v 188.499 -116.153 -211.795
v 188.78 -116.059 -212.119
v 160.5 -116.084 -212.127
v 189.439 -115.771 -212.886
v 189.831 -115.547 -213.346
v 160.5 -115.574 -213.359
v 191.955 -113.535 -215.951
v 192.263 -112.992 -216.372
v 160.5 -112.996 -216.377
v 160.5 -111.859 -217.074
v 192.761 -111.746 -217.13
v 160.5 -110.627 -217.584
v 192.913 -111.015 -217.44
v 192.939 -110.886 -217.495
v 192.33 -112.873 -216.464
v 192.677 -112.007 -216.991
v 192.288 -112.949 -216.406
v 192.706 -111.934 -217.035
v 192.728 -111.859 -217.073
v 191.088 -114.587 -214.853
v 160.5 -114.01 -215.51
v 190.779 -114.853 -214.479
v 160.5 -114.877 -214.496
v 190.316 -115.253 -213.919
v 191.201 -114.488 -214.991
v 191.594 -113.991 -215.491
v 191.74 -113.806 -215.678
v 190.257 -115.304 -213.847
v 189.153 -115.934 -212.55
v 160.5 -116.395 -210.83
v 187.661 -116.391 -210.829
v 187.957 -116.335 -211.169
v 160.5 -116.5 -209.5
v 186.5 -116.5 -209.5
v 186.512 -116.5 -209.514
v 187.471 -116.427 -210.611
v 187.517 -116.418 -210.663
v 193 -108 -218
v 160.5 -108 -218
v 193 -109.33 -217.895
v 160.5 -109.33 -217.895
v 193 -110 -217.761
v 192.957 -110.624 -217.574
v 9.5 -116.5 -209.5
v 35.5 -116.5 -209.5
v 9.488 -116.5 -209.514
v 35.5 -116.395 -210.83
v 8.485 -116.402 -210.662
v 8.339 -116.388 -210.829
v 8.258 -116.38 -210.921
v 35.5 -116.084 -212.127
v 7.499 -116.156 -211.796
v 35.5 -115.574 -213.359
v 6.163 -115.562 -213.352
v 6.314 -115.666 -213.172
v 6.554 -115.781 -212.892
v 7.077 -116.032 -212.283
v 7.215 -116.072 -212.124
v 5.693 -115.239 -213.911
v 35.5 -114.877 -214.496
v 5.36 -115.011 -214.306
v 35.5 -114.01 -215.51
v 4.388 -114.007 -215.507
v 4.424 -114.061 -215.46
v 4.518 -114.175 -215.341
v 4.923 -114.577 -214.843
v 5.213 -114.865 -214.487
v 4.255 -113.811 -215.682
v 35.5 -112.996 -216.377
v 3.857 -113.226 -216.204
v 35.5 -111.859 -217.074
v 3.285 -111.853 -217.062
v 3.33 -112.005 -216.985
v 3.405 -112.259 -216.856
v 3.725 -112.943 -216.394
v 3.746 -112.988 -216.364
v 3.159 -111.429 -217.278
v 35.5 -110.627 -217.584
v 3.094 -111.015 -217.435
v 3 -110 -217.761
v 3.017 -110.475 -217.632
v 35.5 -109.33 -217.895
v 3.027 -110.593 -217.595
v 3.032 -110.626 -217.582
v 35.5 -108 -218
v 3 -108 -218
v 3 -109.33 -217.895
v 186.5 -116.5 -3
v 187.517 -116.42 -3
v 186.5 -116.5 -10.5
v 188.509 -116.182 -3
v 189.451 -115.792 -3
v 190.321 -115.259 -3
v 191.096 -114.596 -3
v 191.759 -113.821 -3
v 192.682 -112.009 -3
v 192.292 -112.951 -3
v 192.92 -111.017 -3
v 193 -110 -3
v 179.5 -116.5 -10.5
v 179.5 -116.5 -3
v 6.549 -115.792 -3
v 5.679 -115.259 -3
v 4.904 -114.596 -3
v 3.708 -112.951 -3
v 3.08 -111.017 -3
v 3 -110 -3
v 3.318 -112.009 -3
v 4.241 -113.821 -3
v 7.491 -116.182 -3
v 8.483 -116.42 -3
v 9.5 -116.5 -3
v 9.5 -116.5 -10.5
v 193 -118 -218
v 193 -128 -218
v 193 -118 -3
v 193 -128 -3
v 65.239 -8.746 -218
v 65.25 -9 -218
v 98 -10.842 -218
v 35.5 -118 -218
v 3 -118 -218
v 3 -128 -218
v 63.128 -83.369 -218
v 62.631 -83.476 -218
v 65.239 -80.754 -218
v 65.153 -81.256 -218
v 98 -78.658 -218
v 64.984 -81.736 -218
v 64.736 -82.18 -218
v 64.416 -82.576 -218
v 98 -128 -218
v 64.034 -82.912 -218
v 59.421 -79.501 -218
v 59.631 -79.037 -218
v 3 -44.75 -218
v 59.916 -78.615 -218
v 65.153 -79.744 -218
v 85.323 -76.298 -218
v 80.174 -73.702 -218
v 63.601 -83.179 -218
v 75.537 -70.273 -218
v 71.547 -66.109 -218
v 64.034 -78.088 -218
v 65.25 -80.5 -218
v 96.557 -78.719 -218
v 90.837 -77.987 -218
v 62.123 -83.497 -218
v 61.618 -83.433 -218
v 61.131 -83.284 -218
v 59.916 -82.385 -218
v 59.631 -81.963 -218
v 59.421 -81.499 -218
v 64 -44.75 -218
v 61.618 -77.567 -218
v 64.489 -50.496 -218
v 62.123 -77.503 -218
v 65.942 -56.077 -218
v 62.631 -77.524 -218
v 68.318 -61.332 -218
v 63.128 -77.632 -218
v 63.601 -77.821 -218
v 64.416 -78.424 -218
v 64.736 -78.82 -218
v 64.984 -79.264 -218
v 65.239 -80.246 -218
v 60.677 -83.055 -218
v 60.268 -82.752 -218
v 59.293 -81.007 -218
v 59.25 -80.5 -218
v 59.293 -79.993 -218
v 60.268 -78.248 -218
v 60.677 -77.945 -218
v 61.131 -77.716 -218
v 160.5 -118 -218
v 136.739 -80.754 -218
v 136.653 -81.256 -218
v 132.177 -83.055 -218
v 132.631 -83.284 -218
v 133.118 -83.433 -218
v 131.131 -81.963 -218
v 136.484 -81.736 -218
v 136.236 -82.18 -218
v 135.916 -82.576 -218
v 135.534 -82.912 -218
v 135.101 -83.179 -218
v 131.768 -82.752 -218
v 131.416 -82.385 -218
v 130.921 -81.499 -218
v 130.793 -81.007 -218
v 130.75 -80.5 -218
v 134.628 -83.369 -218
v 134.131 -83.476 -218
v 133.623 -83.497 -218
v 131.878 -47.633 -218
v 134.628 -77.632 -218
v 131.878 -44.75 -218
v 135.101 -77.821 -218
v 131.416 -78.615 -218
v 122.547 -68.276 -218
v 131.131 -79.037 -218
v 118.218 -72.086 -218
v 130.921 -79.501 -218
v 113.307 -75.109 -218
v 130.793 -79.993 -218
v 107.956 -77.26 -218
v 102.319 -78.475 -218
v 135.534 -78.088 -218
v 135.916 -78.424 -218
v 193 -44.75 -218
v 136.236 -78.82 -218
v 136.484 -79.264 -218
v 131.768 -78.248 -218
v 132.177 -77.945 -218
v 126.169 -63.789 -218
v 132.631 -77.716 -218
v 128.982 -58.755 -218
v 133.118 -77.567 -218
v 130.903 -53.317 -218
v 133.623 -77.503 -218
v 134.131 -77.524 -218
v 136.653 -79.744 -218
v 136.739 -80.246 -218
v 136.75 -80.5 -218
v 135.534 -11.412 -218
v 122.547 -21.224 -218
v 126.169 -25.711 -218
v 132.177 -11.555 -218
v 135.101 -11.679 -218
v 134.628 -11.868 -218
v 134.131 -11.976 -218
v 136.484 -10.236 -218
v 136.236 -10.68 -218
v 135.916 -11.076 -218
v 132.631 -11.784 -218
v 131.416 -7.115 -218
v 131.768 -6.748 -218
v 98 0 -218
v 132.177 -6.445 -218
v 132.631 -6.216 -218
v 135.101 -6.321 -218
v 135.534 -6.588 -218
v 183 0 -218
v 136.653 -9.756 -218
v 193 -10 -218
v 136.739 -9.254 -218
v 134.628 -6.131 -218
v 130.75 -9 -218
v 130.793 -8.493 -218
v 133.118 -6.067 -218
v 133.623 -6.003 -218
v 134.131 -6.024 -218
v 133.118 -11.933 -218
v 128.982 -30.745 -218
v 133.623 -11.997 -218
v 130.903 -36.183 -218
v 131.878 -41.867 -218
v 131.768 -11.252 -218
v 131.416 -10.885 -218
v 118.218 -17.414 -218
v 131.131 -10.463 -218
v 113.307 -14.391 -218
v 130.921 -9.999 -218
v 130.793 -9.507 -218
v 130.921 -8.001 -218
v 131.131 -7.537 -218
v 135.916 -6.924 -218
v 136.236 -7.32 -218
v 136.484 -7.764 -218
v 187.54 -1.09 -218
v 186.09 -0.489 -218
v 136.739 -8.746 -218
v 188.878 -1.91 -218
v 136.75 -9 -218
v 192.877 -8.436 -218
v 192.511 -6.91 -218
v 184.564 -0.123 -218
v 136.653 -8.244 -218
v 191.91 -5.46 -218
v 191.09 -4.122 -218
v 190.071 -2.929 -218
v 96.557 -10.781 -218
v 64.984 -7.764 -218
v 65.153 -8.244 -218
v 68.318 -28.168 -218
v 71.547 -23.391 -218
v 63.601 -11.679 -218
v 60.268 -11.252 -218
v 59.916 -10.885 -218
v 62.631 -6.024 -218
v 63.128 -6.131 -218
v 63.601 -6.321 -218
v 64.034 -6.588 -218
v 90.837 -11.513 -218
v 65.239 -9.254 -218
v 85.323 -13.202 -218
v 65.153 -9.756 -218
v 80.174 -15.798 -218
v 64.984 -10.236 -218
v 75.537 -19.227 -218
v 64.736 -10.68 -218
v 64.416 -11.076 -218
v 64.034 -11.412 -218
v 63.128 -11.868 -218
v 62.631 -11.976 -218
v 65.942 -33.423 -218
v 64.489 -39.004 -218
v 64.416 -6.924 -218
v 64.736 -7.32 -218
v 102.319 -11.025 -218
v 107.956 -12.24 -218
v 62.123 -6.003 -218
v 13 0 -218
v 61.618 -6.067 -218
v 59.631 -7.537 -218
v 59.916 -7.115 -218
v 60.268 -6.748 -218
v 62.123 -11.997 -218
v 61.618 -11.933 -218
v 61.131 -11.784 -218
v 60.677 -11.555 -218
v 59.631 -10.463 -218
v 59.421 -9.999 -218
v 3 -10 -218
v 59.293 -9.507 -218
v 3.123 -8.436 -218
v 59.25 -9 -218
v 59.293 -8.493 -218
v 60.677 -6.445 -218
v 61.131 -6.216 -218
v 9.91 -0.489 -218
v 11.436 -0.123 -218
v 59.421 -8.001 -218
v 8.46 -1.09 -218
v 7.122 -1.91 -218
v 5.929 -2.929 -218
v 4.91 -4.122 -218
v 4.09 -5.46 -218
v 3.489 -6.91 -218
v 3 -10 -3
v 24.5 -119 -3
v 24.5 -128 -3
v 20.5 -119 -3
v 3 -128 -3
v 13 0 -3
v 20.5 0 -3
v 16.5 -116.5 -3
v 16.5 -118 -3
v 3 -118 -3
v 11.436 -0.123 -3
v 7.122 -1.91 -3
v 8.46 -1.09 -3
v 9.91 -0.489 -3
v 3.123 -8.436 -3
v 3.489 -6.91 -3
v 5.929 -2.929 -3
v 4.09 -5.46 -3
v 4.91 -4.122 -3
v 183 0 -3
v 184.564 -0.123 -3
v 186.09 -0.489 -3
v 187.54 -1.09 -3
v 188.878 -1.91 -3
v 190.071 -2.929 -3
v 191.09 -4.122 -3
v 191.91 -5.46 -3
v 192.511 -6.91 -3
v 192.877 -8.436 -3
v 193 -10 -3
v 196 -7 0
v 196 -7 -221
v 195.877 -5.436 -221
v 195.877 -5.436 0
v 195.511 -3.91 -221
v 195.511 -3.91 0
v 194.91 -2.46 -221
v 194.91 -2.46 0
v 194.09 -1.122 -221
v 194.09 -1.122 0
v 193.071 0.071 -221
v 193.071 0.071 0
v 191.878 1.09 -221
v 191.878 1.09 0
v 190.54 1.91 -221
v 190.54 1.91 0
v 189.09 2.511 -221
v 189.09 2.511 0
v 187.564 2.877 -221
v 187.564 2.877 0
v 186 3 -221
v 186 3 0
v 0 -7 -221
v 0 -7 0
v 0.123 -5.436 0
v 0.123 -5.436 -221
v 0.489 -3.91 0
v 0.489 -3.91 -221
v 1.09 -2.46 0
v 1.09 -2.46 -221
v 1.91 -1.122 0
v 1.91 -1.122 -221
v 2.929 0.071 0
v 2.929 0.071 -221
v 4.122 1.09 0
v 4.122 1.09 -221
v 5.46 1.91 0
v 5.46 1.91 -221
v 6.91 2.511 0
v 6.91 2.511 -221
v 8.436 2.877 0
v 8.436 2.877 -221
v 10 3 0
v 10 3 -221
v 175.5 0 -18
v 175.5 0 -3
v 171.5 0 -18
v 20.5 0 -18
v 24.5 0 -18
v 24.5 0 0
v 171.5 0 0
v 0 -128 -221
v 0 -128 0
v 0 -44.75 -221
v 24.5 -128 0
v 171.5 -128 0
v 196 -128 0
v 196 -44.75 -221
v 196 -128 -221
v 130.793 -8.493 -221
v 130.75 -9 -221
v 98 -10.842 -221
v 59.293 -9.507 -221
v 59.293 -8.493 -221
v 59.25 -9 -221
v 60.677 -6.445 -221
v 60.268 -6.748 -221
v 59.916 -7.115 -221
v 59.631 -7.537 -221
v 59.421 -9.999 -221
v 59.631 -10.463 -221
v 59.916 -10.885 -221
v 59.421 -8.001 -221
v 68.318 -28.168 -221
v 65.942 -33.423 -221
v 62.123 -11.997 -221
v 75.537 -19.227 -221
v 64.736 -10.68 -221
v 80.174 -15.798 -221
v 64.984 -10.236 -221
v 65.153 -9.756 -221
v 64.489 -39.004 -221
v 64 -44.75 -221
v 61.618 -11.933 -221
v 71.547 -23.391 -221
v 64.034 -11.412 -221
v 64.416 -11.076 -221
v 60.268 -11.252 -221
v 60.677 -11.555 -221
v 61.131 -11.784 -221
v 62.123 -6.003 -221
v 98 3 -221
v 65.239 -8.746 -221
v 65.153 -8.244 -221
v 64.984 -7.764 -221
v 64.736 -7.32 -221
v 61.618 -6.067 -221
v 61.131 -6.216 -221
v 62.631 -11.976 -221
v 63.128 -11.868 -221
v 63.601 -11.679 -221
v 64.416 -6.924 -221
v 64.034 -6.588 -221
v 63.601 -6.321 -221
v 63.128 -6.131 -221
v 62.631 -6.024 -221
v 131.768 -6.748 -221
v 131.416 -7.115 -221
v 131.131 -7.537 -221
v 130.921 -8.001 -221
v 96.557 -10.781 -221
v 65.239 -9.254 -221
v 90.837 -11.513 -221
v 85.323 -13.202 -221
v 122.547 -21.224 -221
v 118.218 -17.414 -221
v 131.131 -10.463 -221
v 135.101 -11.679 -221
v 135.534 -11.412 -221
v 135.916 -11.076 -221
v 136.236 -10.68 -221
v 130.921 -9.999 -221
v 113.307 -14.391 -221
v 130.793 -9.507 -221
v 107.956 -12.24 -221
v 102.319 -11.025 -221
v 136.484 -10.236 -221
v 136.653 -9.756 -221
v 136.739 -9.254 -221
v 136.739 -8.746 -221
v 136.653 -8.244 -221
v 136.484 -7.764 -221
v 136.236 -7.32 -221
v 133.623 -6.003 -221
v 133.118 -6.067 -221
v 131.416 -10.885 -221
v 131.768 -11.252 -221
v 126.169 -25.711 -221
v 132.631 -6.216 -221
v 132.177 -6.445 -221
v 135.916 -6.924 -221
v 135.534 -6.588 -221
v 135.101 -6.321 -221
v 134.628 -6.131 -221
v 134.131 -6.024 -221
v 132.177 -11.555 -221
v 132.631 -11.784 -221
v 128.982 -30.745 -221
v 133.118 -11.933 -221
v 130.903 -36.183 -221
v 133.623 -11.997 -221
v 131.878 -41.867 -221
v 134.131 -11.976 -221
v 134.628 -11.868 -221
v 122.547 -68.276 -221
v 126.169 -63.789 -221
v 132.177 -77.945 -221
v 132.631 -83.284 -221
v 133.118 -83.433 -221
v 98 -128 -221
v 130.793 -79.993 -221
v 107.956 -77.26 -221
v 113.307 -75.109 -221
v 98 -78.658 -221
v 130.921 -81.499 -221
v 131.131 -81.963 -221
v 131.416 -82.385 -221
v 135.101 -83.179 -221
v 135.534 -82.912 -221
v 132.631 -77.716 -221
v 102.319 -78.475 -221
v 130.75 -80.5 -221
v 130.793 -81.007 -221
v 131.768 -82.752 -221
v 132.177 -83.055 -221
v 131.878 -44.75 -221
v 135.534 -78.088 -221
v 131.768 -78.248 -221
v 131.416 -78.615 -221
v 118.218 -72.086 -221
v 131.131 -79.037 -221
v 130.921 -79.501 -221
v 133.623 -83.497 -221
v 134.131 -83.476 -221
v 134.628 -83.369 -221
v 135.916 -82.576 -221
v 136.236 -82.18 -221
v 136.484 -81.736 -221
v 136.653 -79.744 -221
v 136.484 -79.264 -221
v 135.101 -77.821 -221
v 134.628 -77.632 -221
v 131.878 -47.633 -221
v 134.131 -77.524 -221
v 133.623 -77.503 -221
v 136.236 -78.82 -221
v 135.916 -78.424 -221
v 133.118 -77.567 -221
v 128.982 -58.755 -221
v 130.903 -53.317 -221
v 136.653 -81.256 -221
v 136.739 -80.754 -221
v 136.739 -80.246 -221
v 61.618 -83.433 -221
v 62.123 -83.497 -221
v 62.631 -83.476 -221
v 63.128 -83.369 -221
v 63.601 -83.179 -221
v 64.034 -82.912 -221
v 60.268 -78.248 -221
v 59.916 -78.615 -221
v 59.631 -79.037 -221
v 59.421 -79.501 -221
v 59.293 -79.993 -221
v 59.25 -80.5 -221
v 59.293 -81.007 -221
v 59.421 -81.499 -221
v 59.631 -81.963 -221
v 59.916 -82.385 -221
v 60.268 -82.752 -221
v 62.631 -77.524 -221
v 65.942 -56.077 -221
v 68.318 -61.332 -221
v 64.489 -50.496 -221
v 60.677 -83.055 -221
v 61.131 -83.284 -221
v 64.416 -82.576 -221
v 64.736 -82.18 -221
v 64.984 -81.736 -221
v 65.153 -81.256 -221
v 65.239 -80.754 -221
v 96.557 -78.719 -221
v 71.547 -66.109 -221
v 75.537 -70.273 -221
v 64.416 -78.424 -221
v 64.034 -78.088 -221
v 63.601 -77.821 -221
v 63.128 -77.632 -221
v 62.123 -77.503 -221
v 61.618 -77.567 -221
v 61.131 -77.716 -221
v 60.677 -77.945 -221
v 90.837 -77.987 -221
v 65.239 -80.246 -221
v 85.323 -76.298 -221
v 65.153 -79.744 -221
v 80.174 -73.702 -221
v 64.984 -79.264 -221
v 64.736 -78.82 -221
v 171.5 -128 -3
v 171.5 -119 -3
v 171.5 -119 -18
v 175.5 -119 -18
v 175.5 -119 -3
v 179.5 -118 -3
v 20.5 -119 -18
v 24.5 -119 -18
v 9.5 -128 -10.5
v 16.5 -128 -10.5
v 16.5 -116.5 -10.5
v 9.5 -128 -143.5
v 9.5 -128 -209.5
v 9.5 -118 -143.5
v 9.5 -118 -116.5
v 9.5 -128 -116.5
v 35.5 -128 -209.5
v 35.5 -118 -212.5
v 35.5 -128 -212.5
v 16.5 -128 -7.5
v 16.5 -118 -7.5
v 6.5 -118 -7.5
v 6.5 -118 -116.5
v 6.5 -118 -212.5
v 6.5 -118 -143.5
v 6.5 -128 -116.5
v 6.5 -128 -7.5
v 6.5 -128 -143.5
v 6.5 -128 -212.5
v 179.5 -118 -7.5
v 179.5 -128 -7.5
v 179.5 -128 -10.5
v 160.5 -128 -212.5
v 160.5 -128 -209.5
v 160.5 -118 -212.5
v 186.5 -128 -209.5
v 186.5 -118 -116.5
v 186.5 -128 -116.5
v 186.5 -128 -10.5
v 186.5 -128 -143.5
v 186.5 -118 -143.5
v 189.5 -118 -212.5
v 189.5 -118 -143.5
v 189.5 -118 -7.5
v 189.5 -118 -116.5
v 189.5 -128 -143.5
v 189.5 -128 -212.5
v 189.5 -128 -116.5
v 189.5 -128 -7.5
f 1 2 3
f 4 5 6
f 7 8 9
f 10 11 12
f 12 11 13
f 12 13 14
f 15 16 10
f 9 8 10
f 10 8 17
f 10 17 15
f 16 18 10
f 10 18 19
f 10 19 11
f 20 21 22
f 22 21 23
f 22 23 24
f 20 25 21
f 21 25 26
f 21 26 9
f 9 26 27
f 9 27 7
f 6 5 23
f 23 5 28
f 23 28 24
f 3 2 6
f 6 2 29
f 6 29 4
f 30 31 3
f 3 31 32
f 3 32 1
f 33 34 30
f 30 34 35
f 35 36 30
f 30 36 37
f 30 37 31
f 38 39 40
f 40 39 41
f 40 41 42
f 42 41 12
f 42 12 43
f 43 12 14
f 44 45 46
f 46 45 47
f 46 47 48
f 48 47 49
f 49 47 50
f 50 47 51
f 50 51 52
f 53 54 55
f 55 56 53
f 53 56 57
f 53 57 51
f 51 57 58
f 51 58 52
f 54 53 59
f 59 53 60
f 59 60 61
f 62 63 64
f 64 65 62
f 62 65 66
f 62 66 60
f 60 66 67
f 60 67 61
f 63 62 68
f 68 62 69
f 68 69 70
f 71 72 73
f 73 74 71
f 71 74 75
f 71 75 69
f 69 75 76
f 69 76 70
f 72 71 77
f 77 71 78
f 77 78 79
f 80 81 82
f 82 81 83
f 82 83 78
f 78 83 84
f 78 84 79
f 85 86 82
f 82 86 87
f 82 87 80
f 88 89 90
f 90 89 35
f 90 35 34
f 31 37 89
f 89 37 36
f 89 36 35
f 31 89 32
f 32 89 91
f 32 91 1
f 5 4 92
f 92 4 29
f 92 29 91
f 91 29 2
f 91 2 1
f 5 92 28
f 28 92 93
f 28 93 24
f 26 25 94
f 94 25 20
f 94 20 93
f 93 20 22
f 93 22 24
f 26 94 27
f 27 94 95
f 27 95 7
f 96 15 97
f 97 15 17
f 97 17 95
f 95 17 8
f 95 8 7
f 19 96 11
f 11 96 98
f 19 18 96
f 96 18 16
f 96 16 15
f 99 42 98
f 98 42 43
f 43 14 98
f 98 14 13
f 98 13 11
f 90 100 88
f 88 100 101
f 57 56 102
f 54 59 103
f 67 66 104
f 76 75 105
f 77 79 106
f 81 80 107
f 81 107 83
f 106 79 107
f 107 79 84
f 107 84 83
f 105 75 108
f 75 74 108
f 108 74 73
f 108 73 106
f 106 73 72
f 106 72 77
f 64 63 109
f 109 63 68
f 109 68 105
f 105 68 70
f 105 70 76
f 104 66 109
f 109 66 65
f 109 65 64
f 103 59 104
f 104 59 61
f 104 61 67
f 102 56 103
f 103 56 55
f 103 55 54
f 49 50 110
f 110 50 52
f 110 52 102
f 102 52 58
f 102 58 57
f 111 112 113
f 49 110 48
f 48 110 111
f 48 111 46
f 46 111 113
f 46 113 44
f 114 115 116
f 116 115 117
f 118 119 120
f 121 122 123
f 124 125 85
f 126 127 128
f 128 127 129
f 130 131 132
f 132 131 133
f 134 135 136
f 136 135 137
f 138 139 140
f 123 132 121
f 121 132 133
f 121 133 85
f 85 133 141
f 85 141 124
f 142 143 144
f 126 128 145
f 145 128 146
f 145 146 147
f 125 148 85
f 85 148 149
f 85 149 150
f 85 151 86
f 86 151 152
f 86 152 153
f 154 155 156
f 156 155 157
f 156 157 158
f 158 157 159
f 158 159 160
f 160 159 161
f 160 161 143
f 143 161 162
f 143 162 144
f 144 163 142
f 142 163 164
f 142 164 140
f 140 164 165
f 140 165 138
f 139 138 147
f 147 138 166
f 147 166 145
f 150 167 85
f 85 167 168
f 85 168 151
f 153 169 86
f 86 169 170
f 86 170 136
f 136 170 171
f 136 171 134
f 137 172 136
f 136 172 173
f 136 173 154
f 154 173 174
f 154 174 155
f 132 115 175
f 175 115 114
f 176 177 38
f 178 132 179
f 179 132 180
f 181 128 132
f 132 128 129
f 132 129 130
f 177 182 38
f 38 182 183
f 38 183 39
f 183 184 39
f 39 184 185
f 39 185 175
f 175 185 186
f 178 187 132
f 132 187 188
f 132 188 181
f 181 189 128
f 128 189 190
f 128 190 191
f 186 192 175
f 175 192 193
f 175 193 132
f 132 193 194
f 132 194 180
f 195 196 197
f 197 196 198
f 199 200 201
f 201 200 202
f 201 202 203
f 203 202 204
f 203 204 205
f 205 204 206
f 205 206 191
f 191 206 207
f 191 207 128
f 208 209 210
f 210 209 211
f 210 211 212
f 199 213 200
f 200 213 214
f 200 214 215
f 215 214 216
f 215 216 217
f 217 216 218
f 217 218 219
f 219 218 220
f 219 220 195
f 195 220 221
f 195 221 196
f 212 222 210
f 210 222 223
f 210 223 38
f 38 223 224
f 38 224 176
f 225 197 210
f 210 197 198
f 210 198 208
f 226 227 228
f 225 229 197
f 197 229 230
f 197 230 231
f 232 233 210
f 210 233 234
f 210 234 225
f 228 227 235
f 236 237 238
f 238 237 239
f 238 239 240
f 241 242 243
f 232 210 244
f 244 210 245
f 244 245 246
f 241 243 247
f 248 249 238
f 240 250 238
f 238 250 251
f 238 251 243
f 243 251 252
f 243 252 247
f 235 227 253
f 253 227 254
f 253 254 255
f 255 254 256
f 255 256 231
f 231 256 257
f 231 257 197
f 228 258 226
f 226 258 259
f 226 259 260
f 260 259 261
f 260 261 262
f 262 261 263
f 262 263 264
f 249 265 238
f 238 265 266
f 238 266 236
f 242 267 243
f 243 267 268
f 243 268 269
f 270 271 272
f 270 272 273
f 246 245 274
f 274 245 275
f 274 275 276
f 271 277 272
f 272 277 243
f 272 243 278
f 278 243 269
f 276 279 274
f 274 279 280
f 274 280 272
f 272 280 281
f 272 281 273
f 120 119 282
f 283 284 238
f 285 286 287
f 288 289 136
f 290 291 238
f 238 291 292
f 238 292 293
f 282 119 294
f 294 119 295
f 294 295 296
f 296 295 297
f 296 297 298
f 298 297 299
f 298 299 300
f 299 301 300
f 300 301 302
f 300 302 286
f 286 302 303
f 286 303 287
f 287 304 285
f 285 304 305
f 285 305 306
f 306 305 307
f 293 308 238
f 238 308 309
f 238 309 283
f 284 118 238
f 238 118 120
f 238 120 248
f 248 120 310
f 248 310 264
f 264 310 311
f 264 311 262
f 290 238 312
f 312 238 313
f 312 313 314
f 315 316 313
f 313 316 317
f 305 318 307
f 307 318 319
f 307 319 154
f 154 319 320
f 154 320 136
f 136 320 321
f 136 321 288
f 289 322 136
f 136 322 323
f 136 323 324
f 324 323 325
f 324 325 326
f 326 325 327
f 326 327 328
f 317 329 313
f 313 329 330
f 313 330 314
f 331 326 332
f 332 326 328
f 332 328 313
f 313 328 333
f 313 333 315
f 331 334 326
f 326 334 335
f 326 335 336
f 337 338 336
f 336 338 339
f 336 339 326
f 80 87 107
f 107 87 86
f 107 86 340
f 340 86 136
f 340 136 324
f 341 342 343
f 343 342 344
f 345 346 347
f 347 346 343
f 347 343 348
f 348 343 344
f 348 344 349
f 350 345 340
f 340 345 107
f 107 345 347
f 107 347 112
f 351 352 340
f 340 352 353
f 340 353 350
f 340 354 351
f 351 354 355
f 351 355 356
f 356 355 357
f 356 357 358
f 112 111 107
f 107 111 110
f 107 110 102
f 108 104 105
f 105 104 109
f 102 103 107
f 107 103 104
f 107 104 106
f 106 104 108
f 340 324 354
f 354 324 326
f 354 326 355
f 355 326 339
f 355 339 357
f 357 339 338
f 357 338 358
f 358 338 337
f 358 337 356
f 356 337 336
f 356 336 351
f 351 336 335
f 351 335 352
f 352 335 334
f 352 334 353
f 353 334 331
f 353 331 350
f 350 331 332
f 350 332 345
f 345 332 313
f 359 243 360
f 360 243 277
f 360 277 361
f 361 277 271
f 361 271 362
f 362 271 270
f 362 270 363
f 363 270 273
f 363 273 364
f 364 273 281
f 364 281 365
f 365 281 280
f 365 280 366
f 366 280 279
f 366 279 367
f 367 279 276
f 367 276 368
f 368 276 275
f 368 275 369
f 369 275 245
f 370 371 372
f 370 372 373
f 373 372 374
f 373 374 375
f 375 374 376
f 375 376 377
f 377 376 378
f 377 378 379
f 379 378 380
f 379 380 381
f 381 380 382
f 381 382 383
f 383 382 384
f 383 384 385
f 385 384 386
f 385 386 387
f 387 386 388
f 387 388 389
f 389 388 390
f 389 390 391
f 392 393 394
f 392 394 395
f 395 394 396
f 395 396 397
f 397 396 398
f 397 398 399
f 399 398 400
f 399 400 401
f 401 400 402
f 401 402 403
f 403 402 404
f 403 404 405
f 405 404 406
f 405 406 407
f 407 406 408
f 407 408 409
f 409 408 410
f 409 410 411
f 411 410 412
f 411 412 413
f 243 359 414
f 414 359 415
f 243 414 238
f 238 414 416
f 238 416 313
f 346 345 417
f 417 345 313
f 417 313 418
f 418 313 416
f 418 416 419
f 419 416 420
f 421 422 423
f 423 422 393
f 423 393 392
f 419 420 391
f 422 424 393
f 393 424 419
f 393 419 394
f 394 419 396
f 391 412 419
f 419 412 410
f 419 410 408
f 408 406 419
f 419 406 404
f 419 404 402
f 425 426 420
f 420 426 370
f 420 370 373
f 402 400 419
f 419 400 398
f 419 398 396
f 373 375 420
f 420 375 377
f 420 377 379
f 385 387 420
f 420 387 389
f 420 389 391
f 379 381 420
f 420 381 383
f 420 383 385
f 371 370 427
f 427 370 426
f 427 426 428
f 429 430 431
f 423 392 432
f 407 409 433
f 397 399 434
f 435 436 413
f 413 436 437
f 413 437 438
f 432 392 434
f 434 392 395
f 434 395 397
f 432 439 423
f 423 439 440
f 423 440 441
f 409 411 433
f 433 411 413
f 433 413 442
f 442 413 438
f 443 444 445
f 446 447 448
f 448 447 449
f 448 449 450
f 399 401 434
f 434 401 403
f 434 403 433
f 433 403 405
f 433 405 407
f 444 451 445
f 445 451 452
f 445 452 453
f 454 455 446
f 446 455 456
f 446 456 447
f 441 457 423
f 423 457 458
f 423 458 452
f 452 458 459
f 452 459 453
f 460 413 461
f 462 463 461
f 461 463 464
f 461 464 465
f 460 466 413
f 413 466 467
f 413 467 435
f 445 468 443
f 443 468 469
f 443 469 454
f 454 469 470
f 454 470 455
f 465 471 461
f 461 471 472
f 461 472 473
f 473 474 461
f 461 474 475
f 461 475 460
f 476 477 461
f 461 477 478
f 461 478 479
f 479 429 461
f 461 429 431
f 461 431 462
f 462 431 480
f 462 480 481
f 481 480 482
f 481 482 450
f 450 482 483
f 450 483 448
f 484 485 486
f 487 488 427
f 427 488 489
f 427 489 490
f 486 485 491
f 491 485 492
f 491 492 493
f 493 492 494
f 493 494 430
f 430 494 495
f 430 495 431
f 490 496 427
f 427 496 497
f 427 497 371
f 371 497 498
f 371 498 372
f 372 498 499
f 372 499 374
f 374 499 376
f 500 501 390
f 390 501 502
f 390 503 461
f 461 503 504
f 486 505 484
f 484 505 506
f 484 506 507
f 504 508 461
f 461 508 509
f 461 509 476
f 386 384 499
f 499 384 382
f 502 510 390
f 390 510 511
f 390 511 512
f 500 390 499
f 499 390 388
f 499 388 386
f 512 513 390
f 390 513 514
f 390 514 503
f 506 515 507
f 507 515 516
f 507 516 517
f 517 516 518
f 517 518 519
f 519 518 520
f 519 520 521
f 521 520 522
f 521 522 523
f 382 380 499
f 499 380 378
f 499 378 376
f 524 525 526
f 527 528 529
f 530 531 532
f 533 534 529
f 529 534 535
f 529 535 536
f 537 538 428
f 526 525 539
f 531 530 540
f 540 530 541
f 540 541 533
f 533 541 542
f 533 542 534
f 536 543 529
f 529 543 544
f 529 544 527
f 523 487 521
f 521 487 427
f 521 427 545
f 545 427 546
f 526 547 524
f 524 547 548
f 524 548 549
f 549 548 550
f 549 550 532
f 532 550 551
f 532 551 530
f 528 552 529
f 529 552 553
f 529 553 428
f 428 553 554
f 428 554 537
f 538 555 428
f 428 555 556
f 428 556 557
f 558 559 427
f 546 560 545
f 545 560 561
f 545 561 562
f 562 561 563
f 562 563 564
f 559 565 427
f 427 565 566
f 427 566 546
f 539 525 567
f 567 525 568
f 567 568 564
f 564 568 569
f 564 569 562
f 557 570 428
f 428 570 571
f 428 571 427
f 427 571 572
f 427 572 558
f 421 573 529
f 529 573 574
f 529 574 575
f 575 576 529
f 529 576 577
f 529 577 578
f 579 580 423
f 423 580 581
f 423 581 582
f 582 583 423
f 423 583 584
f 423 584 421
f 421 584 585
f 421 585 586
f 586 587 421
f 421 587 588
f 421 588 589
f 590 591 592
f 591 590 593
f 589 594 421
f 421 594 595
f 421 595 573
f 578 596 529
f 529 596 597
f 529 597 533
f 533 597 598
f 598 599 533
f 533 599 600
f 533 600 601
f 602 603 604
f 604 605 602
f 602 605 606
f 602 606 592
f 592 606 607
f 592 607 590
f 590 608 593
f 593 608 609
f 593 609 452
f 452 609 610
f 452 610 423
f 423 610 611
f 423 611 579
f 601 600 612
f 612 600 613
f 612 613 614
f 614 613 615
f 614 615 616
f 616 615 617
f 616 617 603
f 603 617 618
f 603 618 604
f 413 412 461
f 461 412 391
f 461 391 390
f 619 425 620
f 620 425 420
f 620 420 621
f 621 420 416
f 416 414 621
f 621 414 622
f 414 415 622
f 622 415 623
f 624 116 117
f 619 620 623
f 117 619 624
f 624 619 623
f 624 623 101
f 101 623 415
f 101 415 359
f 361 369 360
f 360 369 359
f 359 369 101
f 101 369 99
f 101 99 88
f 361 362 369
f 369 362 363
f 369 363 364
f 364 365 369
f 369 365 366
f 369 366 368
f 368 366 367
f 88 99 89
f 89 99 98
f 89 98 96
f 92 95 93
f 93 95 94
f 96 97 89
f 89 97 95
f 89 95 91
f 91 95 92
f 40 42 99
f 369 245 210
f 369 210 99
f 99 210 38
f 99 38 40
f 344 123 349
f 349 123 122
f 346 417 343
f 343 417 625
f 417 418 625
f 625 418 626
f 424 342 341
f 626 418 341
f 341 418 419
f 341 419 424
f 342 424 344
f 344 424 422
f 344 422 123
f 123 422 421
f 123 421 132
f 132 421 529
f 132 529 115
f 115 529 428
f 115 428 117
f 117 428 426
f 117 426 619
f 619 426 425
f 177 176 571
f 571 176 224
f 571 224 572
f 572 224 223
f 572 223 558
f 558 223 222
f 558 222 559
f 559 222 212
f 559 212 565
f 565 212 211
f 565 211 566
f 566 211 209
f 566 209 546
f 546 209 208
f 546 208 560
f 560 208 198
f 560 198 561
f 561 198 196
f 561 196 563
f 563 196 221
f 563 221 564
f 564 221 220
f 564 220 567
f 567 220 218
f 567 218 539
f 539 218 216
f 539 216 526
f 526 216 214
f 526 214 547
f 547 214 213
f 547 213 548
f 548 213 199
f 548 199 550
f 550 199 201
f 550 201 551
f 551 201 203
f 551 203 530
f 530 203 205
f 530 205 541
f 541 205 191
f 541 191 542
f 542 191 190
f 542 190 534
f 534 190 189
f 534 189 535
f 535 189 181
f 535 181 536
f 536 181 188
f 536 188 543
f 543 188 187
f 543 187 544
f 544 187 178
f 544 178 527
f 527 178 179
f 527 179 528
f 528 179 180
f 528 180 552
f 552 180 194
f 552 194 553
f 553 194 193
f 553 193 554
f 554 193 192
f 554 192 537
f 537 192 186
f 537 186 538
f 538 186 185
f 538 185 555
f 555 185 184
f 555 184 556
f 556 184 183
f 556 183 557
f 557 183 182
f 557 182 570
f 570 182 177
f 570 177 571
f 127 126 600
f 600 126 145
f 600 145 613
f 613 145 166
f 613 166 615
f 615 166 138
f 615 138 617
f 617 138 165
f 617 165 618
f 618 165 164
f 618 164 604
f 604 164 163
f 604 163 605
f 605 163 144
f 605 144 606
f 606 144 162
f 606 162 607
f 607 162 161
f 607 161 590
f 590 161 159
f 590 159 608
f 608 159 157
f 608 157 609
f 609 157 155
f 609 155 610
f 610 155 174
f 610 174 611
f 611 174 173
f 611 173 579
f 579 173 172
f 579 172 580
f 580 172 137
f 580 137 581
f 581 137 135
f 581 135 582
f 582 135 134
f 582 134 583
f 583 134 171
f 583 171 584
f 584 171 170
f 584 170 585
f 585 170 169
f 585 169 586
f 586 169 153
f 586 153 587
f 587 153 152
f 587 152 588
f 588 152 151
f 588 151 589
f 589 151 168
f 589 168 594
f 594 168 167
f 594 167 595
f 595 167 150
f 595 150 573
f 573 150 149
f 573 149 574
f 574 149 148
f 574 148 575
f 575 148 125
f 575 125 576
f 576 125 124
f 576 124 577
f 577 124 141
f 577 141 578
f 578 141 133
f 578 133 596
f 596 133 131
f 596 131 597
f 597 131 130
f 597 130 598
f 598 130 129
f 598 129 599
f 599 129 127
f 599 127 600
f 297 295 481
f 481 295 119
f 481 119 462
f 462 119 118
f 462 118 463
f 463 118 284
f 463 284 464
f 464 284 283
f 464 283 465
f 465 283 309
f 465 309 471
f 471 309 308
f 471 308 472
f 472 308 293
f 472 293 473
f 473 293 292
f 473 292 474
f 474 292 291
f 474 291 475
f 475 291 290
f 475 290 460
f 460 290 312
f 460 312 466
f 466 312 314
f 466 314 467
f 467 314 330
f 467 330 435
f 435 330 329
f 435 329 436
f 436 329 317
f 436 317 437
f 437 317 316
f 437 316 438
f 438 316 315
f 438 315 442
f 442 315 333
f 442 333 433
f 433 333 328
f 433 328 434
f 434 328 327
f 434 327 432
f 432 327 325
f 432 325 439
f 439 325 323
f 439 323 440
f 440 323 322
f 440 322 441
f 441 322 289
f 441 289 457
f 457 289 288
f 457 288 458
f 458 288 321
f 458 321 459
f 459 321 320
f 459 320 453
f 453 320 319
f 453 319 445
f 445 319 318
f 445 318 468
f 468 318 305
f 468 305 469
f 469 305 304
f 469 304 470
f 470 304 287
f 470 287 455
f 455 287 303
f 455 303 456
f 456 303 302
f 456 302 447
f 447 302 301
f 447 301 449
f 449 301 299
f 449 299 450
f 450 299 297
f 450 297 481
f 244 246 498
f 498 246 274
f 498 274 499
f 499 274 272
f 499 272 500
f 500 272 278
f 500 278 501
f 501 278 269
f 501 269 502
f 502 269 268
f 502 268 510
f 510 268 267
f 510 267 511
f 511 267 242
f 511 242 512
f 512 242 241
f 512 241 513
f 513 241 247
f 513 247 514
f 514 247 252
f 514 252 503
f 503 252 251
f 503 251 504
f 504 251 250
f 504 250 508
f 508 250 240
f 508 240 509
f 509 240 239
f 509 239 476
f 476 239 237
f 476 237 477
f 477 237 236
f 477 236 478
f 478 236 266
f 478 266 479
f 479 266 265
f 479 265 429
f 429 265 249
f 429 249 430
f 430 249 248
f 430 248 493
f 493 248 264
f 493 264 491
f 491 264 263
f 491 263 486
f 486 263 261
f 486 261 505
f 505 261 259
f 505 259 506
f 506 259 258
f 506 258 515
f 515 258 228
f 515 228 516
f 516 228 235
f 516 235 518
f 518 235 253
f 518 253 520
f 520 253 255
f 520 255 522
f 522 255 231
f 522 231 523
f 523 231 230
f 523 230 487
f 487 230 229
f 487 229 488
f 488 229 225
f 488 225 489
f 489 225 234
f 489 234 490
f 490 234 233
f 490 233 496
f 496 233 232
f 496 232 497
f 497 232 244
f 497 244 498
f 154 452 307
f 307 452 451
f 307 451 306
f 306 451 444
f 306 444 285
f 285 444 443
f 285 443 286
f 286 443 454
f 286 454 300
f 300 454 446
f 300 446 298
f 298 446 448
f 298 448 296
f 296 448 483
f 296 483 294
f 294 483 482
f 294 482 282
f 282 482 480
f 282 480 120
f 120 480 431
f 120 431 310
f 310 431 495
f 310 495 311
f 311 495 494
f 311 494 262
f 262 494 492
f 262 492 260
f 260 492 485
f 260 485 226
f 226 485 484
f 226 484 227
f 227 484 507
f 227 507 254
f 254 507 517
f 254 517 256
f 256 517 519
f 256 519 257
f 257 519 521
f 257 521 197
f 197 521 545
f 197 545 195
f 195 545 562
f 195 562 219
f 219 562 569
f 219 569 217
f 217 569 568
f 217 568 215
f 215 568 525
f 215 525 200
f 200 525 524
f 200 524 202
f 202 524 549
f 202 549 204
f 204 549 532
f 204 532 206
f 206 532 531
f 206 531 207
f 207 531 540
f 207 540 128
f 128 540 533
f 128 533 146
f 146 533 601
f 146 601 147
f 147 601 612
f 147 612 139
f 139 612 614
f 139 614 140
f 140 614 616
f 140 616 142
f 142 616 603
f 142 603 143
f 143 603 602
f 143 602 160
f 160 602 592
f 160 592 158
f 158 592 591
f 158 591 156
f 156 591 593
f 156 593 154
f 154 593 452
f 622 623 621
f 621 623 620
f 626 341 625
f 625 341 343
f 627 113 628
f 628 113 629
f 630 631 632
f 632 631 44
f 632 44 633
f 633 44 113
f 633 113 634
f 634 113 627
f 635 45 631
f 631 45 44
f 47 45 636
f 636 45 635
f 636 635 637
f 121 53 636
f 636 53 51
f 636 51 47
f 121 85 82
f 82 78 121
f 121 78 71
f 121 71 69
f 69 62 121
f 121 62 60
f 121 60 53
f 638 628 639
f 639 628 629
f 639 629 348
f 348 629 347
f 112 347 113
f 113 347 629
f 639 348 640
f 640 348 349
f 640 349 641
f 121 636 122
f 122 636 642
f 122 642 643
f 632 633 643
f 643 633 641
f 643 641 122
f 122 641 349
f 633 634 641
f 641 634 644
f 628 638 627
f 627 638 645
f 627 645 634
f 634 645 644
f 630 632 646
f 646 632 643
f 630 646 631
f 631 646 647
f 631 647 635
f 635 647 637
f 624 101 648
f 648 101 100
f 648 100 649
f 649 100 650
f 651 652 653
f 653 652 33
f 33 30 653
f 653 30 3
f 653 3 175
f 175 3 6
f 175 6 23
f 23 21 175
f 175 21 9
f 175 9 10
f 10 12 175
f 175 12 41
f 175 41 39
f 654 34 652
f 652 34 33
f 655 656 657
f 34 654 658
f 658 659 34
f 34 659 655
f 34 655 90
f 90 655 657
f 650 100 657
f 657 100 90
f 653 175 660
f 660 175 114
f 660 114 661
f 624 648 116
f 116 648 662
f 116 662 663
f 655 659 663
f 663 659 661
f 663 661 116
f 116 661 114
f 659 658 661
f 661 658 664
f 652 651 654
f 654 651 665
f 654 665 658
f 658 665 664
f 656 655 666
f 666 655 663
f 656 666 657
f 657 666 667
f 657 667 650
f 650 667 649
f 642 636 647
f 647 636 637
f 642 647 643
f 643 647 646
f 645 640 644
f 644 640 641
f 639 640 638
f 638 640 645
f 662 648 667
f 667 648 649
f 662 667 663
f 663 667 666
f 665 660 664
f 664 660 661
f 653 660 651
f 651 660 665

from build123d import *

# Parameters (mm, degrees)
SKETCH_1_W          = 196
SKETCH_1_H          = 221
EXTRUDE_1_DEPTH     = 3
EXTRUDE_2_DEPTH     = 128
FILLET_1_R          = 10
FILLET_2_R          = 10
SKETCH_3_R          = 3
SKETCH_3_R_2        = 40
CUT_EXTRUDE_1_DEPTH = 5
FILLET_3_R          = 10
FILLET_4_R          = 10
SKETCH_5_R          = 40
SKETCH_5_R_2        = 34
EXTRUDE_3_DEPTH     = 3
SKETCH_6_W          = 15
SKETCH_6_H          = 9
CUT_EXTRUDE_3_DEPTH = 159
EXTRUDE_4_DEPTH     = 10
EXTRUDE_4_2_DEPTH   = 10
EXTRUDE_4_3_DEPTH   = 10
EXTRUDE_4_4_DEPTH   = 10
EXTRUDE_6_DEPTH     = 1.5
FILLET_START        = -219
FILLET_6_DEPTH      = 216
FILLET_7_R          = 6.5
FILLET_8_R          = 8.5
FILLET_9_R          = 8.5
CUT_EXTRUDE_4_DEPTH = 10


with BuildPart() as part:
    # 草图1 → 凸台-拉伸1 (new body)
    with BuildSketch(Plane(origin=(0, 0, 0), x_dir=(1, 0, 0), z_dir=(0, 1, 0))):
        with Locations((98, 110.5)):
            Rectangle(SKETCH_1_W, SKETCH_1_H)
    extrude(amount=EXTRUDE_1_DEPTH)

    # 草图2 → 凸台-拉伸2 (add)
    with BuildSketch(Plane(origin=(0, 0, 0), x_dir=(1, 0, 0), z_dir=(0, 1, 0))):
        Polygon((3, 218), (3, 3), (20.5, 3), (20.5, 18), (24.5, 18), (24.5, 3), (24.5, 0), (0, 0), (0, 221), (196, 221), (196, 0), (171.5, 0), (171.5, 3), (171.5, 18), (175.5, 18), (175.5, 3), (193, 3), (193, 218), align=None)
    extrude(amount=-EXTRUDE_2_DEPTH)

    # 圆角1
    fillet_1_edges = [part.edges().sort_by_distance(p)[0] for p in [
        (0, 3, -110.5),
    ]]
    fillet(fillet_1_edges, radius=FILLET_1_R)

    # 圆角2
    fillet_2_edges = [part.edges().sort_by_distance(p)[0] for p in [
        (196, 3, -110.5),
    ]]
    fillet(fillet_2_edges, radius=FILLET_2_R)

    # 草图3 → 切除-拉伸1 (cut)
    with BuildSketch(Plane(origin=(0, 0, -221), x_dir=(-1, 0, 0), z_dir=(0, 0, -1))):
        with Locations((-133.75, -9)):
            Circle(SKETCH_3_R)
        with Locations((-62.25, -9)):
            Circle(SKETCH_3_R)
        with Locations((-62.25, -80.5)):
            Circle(SKETCH_3_R)
        with Locations((-133.75, -80.5)):
            Circle(SKETCH_3_R)
        with Locations((-98, -44.75)):
            Circle(SKETCH_3_R_2)
    extrude(amount=-CUT_EXTRUDE_1_DEPTH, mode=Mode.SUBTRACT)

    # 圆角3
    fillet_3_edges = [part.edges().sort_by_distance(p)[0] for p in [
        (193, 0, -110.5),
    ]]
    fillet(fillet_3_edges, radius=FILLET_3_R)

    # 圆角4
    fillet_4_edges = [part.edges().sort_by_distance(p)[0] for p in [
        (3, 0, -110.5),
    ]]
    fillet(fillet_4_edges, radius=FILLET_4_R)

    # 草图5 → 凸台-拉伸3 (add)
    with BuildSketch(Plane(origin=(0, 0, -221), x_dir=(-1, 0, 0), z_dir=(0, 0, -1))):
        with Locations((-98, -44.75)):
            Circle(SKETCH_5_R)
        with Locations((-98, -44.75)):
            Circle(SKETCH_5_R_2, mode=Mode.SUBTRACT)
    extrude(amount=-EXTRUDE_3_DEPTH)

    # 草图6 → 切除-拉伸3 (cut)
    with BuildSketch(Plane(origin=(175.5, 0, 0), x_dir=(0, 0, -1), z_dir=(1, 0, 0))):
        with Locations((10.5, -123.5)):
            Rectangle(SKETCH_6_W, SKETCH_6_H)
    extrude(amount=-CUT_EXTRUDE_3_DEPTH, mode=Mode.SUBTRACT)



with BuildPart() as body_2:
    # 草图10 → 凸台-拉伸4 (new body)
    with BuildSketch(Plane(origin=(0, -128, 0), x_dir=(-1, 0, 0), z_dir=(0, -1, 0))):
        Polygon((-5.5, 213.5), (-5.5, 143.5), (-9.5, 143.5), (-9.5, 209.5), (-35.5, 209.5), (-35.5, 213.5), align=None)
    extrude(amount=-EXTRUDE_4_DEPTH)


with BuildPart() as body_3:
    # 草图10 → Extrude 4 2 (new body)
    with BuildSketch(Plane(origin=(0, -128, 0), x_dir=(-1, 0, 0), z_dir=(0, -1, 0))):
        Polygon((-190.5, 213.5), (-160.5, 213.5), (-160.5, 209.5), (-186.5, 209.5), (-186.5, 143.5), (-190.5, 143.5), align=None)
    extrude(amount=-EXTRUDE_4_2_DEPTH)


with BuildPart() as body_4:
    # 草图10 → Extrude 4 3 (new body)
    with BuildSketch(Plane(origin=(0, -128, 0), x_dir=(-1, 0, 0), z_dir=(0, -1, 0))):
        Polygon((-16.5, 6.5), (-16.5, 10.5), (-9.5, 10.5), (-9.5, 116.5), (-5.5, 116.5), (-5.5, 6.5), align=None)
    extrude(amount=-EXTRUDE_4_3_DEPTH)


with BuildPart() as body_5:
    # 草图10 → Extrude 4 4 (new body)
    with BuildSketch(Plane(origin=(0, -128, 0), x_dir=(-1, 0, 0), z_dir=(0, -1, 0))):
        Polygon((-190.5, 6.5), (-179.5, 6.5), (-179.5, 10.5), (-186.5, 10.5), (-186.5, 116.5), (-190.5, 116.5), align=None)
    extrude(amount=-EXTRUDE_4_4_DEPTH)


with BuildPart() as part_1:
    add(part.part)

    add(body_2.part)  # 凸台-拉伸6 merges body 2

    add(body_3.part)  # 凸台-拉伸6 merges body 3

    add(body_4.part)  # 凸台-拉伸6 merges body 4

    add(body_5.part)  # 凸台-拉伸6 merges body 5
    # 草图11 → 凸台-拉伸6 (add)
    with BuildSketch(Plane(origin=(0, -118, 0), x_dir=(1, 0, 0), z_dir=(0, 1, 0))):
        Polygon((179.5, 6.5), (179.5, 3), (193, 3), (193, 218), (160.5, 218), (160.5, 209.5), (186.5, 209.5), (186.5, 10.5), (179.5, 10.5), align=None)
        Polygon((16.5, 10.5), (16.5, 3), (3, 3), (3, 218), (35.5, 218), (35.5, 209.5), (9.5, 209.5), (9.5, 10.5), align=None)
    extrude(amount=EXTRUDE_6_DEPTH)

    # 圆角6: read off the stored shape, not the designer's step
    # 圆角6 outline → 圆角6 (add)
    with BuildSketch(Plane.XY.offset(FILLET_START)):
        with BuildLine():
            Line((3, -116.5), (9.5, -116.5))
            ThreePointArc((9.5, -116.5), (4.903805922, -114.596194078), (3, -110))
            Line((3, -110), (3, -116.5))
        make_face()
    extrude(amount=FILLET_6_DEPTH)

    # 圆角7
    fillet_7_edges = [part_1.edges().sort_by_distance(p)[0] for p in [
        (193, -116.5, -110.5),
    ]]
    fillet(fillet_7_edges, radius=FILLET_7_R - 0.0001)  # a hair under: the kernel refuses the full size

    # 圆角8
    # the kernel refuses this fillet: 8.5 mm, written as the material it adds along each edge
    with BuildSketch(Plane(origin=(-11.75, -116.5, -218), x_dir=(0, 1, 0), z_dir=(1, 0, 0))) as fillet_8_piece_1_section:
        with BuildLine():
            CenterArc((FILLET_8_R, FILLET_8_R), FILLET_8_R, 180, 90)
            Line((0, FILLET_8_R), (0, 0))
            Line((0, 0), (FILLET_8_R, 0))
        make_face()
    fillet_8_piece_1 = extrude(amount=47.25, mode=Mode.PRIVATE)
    fillet_8_piece_1 = split(fillet_8_piece_1, bisect_by=Plane(origin=(0, -116.5, -218), z_dir=(1, 0, 0)), keep=Keep.TOP, mode=Mode.PRIVATE)
    add(fillet_8_piece_1)

    # 圆角9
    # the kernel refuses this fillet: 8.5 mm, written as the material it adds along each edge
    with BuildSketch(Plane(origin=(207.7501, -116.5, -218), x_dir=(0, 0, 1), z_dir=(-1, 0, 0))) as fillet_9_piece_1_section:
        with BuildLine():
            CenterArc((FILLET_9_R, FILLET_9_R), FILLET_9_R, 180, 90)
            Line((0, FILLET_9_R), (0, 0))
            Line((0, 0), (FILLET_9_R, 0))
        make_face()
    fillet_9_piece_1 = extrude(amount=47.2501, mode=Mode.PRIVATE)
    fillet_9_piece_1 = split(fillet_9_piece_1, bisect_by=Plane(origin=(196, -116.5, -218), z_dir=(-1, 0, 0)), keep=Keep.TOP, mode=Mode.PRIVATE)
    add(fillet_9_piece_1)

    # 草图12 → 切除-拉伸4 (cut)
    with BuildSketch(Plane(origin=(0, -128, 0), x_dir=(-1, 0, 0), z_dir=(0, -1, 0))):
        Polygon((-16.5, 6.5), (-5.5, 6.5), (-5.5, 213.5), (-35.5, 213.5), (-35.5, 212.5), (-6.5, 212.5), (-6.5, 7.5), (-16.5, 7.5), align=None)
        Polygon((-190.5, 213.5), (-190.5, 6.5), (-179.5, 6.5), (-179.5, 7.5), (-189.5, 7.5), (-189.5, 212.5), (-160.5, 212.5), (-160.5, 213), (-160.5, 213.5), align=None)
    extrude(amount=-CUT_EXTRUDE_4_DEPTH, mode=Mode.SUBTRACT)


solid = part_1.part
